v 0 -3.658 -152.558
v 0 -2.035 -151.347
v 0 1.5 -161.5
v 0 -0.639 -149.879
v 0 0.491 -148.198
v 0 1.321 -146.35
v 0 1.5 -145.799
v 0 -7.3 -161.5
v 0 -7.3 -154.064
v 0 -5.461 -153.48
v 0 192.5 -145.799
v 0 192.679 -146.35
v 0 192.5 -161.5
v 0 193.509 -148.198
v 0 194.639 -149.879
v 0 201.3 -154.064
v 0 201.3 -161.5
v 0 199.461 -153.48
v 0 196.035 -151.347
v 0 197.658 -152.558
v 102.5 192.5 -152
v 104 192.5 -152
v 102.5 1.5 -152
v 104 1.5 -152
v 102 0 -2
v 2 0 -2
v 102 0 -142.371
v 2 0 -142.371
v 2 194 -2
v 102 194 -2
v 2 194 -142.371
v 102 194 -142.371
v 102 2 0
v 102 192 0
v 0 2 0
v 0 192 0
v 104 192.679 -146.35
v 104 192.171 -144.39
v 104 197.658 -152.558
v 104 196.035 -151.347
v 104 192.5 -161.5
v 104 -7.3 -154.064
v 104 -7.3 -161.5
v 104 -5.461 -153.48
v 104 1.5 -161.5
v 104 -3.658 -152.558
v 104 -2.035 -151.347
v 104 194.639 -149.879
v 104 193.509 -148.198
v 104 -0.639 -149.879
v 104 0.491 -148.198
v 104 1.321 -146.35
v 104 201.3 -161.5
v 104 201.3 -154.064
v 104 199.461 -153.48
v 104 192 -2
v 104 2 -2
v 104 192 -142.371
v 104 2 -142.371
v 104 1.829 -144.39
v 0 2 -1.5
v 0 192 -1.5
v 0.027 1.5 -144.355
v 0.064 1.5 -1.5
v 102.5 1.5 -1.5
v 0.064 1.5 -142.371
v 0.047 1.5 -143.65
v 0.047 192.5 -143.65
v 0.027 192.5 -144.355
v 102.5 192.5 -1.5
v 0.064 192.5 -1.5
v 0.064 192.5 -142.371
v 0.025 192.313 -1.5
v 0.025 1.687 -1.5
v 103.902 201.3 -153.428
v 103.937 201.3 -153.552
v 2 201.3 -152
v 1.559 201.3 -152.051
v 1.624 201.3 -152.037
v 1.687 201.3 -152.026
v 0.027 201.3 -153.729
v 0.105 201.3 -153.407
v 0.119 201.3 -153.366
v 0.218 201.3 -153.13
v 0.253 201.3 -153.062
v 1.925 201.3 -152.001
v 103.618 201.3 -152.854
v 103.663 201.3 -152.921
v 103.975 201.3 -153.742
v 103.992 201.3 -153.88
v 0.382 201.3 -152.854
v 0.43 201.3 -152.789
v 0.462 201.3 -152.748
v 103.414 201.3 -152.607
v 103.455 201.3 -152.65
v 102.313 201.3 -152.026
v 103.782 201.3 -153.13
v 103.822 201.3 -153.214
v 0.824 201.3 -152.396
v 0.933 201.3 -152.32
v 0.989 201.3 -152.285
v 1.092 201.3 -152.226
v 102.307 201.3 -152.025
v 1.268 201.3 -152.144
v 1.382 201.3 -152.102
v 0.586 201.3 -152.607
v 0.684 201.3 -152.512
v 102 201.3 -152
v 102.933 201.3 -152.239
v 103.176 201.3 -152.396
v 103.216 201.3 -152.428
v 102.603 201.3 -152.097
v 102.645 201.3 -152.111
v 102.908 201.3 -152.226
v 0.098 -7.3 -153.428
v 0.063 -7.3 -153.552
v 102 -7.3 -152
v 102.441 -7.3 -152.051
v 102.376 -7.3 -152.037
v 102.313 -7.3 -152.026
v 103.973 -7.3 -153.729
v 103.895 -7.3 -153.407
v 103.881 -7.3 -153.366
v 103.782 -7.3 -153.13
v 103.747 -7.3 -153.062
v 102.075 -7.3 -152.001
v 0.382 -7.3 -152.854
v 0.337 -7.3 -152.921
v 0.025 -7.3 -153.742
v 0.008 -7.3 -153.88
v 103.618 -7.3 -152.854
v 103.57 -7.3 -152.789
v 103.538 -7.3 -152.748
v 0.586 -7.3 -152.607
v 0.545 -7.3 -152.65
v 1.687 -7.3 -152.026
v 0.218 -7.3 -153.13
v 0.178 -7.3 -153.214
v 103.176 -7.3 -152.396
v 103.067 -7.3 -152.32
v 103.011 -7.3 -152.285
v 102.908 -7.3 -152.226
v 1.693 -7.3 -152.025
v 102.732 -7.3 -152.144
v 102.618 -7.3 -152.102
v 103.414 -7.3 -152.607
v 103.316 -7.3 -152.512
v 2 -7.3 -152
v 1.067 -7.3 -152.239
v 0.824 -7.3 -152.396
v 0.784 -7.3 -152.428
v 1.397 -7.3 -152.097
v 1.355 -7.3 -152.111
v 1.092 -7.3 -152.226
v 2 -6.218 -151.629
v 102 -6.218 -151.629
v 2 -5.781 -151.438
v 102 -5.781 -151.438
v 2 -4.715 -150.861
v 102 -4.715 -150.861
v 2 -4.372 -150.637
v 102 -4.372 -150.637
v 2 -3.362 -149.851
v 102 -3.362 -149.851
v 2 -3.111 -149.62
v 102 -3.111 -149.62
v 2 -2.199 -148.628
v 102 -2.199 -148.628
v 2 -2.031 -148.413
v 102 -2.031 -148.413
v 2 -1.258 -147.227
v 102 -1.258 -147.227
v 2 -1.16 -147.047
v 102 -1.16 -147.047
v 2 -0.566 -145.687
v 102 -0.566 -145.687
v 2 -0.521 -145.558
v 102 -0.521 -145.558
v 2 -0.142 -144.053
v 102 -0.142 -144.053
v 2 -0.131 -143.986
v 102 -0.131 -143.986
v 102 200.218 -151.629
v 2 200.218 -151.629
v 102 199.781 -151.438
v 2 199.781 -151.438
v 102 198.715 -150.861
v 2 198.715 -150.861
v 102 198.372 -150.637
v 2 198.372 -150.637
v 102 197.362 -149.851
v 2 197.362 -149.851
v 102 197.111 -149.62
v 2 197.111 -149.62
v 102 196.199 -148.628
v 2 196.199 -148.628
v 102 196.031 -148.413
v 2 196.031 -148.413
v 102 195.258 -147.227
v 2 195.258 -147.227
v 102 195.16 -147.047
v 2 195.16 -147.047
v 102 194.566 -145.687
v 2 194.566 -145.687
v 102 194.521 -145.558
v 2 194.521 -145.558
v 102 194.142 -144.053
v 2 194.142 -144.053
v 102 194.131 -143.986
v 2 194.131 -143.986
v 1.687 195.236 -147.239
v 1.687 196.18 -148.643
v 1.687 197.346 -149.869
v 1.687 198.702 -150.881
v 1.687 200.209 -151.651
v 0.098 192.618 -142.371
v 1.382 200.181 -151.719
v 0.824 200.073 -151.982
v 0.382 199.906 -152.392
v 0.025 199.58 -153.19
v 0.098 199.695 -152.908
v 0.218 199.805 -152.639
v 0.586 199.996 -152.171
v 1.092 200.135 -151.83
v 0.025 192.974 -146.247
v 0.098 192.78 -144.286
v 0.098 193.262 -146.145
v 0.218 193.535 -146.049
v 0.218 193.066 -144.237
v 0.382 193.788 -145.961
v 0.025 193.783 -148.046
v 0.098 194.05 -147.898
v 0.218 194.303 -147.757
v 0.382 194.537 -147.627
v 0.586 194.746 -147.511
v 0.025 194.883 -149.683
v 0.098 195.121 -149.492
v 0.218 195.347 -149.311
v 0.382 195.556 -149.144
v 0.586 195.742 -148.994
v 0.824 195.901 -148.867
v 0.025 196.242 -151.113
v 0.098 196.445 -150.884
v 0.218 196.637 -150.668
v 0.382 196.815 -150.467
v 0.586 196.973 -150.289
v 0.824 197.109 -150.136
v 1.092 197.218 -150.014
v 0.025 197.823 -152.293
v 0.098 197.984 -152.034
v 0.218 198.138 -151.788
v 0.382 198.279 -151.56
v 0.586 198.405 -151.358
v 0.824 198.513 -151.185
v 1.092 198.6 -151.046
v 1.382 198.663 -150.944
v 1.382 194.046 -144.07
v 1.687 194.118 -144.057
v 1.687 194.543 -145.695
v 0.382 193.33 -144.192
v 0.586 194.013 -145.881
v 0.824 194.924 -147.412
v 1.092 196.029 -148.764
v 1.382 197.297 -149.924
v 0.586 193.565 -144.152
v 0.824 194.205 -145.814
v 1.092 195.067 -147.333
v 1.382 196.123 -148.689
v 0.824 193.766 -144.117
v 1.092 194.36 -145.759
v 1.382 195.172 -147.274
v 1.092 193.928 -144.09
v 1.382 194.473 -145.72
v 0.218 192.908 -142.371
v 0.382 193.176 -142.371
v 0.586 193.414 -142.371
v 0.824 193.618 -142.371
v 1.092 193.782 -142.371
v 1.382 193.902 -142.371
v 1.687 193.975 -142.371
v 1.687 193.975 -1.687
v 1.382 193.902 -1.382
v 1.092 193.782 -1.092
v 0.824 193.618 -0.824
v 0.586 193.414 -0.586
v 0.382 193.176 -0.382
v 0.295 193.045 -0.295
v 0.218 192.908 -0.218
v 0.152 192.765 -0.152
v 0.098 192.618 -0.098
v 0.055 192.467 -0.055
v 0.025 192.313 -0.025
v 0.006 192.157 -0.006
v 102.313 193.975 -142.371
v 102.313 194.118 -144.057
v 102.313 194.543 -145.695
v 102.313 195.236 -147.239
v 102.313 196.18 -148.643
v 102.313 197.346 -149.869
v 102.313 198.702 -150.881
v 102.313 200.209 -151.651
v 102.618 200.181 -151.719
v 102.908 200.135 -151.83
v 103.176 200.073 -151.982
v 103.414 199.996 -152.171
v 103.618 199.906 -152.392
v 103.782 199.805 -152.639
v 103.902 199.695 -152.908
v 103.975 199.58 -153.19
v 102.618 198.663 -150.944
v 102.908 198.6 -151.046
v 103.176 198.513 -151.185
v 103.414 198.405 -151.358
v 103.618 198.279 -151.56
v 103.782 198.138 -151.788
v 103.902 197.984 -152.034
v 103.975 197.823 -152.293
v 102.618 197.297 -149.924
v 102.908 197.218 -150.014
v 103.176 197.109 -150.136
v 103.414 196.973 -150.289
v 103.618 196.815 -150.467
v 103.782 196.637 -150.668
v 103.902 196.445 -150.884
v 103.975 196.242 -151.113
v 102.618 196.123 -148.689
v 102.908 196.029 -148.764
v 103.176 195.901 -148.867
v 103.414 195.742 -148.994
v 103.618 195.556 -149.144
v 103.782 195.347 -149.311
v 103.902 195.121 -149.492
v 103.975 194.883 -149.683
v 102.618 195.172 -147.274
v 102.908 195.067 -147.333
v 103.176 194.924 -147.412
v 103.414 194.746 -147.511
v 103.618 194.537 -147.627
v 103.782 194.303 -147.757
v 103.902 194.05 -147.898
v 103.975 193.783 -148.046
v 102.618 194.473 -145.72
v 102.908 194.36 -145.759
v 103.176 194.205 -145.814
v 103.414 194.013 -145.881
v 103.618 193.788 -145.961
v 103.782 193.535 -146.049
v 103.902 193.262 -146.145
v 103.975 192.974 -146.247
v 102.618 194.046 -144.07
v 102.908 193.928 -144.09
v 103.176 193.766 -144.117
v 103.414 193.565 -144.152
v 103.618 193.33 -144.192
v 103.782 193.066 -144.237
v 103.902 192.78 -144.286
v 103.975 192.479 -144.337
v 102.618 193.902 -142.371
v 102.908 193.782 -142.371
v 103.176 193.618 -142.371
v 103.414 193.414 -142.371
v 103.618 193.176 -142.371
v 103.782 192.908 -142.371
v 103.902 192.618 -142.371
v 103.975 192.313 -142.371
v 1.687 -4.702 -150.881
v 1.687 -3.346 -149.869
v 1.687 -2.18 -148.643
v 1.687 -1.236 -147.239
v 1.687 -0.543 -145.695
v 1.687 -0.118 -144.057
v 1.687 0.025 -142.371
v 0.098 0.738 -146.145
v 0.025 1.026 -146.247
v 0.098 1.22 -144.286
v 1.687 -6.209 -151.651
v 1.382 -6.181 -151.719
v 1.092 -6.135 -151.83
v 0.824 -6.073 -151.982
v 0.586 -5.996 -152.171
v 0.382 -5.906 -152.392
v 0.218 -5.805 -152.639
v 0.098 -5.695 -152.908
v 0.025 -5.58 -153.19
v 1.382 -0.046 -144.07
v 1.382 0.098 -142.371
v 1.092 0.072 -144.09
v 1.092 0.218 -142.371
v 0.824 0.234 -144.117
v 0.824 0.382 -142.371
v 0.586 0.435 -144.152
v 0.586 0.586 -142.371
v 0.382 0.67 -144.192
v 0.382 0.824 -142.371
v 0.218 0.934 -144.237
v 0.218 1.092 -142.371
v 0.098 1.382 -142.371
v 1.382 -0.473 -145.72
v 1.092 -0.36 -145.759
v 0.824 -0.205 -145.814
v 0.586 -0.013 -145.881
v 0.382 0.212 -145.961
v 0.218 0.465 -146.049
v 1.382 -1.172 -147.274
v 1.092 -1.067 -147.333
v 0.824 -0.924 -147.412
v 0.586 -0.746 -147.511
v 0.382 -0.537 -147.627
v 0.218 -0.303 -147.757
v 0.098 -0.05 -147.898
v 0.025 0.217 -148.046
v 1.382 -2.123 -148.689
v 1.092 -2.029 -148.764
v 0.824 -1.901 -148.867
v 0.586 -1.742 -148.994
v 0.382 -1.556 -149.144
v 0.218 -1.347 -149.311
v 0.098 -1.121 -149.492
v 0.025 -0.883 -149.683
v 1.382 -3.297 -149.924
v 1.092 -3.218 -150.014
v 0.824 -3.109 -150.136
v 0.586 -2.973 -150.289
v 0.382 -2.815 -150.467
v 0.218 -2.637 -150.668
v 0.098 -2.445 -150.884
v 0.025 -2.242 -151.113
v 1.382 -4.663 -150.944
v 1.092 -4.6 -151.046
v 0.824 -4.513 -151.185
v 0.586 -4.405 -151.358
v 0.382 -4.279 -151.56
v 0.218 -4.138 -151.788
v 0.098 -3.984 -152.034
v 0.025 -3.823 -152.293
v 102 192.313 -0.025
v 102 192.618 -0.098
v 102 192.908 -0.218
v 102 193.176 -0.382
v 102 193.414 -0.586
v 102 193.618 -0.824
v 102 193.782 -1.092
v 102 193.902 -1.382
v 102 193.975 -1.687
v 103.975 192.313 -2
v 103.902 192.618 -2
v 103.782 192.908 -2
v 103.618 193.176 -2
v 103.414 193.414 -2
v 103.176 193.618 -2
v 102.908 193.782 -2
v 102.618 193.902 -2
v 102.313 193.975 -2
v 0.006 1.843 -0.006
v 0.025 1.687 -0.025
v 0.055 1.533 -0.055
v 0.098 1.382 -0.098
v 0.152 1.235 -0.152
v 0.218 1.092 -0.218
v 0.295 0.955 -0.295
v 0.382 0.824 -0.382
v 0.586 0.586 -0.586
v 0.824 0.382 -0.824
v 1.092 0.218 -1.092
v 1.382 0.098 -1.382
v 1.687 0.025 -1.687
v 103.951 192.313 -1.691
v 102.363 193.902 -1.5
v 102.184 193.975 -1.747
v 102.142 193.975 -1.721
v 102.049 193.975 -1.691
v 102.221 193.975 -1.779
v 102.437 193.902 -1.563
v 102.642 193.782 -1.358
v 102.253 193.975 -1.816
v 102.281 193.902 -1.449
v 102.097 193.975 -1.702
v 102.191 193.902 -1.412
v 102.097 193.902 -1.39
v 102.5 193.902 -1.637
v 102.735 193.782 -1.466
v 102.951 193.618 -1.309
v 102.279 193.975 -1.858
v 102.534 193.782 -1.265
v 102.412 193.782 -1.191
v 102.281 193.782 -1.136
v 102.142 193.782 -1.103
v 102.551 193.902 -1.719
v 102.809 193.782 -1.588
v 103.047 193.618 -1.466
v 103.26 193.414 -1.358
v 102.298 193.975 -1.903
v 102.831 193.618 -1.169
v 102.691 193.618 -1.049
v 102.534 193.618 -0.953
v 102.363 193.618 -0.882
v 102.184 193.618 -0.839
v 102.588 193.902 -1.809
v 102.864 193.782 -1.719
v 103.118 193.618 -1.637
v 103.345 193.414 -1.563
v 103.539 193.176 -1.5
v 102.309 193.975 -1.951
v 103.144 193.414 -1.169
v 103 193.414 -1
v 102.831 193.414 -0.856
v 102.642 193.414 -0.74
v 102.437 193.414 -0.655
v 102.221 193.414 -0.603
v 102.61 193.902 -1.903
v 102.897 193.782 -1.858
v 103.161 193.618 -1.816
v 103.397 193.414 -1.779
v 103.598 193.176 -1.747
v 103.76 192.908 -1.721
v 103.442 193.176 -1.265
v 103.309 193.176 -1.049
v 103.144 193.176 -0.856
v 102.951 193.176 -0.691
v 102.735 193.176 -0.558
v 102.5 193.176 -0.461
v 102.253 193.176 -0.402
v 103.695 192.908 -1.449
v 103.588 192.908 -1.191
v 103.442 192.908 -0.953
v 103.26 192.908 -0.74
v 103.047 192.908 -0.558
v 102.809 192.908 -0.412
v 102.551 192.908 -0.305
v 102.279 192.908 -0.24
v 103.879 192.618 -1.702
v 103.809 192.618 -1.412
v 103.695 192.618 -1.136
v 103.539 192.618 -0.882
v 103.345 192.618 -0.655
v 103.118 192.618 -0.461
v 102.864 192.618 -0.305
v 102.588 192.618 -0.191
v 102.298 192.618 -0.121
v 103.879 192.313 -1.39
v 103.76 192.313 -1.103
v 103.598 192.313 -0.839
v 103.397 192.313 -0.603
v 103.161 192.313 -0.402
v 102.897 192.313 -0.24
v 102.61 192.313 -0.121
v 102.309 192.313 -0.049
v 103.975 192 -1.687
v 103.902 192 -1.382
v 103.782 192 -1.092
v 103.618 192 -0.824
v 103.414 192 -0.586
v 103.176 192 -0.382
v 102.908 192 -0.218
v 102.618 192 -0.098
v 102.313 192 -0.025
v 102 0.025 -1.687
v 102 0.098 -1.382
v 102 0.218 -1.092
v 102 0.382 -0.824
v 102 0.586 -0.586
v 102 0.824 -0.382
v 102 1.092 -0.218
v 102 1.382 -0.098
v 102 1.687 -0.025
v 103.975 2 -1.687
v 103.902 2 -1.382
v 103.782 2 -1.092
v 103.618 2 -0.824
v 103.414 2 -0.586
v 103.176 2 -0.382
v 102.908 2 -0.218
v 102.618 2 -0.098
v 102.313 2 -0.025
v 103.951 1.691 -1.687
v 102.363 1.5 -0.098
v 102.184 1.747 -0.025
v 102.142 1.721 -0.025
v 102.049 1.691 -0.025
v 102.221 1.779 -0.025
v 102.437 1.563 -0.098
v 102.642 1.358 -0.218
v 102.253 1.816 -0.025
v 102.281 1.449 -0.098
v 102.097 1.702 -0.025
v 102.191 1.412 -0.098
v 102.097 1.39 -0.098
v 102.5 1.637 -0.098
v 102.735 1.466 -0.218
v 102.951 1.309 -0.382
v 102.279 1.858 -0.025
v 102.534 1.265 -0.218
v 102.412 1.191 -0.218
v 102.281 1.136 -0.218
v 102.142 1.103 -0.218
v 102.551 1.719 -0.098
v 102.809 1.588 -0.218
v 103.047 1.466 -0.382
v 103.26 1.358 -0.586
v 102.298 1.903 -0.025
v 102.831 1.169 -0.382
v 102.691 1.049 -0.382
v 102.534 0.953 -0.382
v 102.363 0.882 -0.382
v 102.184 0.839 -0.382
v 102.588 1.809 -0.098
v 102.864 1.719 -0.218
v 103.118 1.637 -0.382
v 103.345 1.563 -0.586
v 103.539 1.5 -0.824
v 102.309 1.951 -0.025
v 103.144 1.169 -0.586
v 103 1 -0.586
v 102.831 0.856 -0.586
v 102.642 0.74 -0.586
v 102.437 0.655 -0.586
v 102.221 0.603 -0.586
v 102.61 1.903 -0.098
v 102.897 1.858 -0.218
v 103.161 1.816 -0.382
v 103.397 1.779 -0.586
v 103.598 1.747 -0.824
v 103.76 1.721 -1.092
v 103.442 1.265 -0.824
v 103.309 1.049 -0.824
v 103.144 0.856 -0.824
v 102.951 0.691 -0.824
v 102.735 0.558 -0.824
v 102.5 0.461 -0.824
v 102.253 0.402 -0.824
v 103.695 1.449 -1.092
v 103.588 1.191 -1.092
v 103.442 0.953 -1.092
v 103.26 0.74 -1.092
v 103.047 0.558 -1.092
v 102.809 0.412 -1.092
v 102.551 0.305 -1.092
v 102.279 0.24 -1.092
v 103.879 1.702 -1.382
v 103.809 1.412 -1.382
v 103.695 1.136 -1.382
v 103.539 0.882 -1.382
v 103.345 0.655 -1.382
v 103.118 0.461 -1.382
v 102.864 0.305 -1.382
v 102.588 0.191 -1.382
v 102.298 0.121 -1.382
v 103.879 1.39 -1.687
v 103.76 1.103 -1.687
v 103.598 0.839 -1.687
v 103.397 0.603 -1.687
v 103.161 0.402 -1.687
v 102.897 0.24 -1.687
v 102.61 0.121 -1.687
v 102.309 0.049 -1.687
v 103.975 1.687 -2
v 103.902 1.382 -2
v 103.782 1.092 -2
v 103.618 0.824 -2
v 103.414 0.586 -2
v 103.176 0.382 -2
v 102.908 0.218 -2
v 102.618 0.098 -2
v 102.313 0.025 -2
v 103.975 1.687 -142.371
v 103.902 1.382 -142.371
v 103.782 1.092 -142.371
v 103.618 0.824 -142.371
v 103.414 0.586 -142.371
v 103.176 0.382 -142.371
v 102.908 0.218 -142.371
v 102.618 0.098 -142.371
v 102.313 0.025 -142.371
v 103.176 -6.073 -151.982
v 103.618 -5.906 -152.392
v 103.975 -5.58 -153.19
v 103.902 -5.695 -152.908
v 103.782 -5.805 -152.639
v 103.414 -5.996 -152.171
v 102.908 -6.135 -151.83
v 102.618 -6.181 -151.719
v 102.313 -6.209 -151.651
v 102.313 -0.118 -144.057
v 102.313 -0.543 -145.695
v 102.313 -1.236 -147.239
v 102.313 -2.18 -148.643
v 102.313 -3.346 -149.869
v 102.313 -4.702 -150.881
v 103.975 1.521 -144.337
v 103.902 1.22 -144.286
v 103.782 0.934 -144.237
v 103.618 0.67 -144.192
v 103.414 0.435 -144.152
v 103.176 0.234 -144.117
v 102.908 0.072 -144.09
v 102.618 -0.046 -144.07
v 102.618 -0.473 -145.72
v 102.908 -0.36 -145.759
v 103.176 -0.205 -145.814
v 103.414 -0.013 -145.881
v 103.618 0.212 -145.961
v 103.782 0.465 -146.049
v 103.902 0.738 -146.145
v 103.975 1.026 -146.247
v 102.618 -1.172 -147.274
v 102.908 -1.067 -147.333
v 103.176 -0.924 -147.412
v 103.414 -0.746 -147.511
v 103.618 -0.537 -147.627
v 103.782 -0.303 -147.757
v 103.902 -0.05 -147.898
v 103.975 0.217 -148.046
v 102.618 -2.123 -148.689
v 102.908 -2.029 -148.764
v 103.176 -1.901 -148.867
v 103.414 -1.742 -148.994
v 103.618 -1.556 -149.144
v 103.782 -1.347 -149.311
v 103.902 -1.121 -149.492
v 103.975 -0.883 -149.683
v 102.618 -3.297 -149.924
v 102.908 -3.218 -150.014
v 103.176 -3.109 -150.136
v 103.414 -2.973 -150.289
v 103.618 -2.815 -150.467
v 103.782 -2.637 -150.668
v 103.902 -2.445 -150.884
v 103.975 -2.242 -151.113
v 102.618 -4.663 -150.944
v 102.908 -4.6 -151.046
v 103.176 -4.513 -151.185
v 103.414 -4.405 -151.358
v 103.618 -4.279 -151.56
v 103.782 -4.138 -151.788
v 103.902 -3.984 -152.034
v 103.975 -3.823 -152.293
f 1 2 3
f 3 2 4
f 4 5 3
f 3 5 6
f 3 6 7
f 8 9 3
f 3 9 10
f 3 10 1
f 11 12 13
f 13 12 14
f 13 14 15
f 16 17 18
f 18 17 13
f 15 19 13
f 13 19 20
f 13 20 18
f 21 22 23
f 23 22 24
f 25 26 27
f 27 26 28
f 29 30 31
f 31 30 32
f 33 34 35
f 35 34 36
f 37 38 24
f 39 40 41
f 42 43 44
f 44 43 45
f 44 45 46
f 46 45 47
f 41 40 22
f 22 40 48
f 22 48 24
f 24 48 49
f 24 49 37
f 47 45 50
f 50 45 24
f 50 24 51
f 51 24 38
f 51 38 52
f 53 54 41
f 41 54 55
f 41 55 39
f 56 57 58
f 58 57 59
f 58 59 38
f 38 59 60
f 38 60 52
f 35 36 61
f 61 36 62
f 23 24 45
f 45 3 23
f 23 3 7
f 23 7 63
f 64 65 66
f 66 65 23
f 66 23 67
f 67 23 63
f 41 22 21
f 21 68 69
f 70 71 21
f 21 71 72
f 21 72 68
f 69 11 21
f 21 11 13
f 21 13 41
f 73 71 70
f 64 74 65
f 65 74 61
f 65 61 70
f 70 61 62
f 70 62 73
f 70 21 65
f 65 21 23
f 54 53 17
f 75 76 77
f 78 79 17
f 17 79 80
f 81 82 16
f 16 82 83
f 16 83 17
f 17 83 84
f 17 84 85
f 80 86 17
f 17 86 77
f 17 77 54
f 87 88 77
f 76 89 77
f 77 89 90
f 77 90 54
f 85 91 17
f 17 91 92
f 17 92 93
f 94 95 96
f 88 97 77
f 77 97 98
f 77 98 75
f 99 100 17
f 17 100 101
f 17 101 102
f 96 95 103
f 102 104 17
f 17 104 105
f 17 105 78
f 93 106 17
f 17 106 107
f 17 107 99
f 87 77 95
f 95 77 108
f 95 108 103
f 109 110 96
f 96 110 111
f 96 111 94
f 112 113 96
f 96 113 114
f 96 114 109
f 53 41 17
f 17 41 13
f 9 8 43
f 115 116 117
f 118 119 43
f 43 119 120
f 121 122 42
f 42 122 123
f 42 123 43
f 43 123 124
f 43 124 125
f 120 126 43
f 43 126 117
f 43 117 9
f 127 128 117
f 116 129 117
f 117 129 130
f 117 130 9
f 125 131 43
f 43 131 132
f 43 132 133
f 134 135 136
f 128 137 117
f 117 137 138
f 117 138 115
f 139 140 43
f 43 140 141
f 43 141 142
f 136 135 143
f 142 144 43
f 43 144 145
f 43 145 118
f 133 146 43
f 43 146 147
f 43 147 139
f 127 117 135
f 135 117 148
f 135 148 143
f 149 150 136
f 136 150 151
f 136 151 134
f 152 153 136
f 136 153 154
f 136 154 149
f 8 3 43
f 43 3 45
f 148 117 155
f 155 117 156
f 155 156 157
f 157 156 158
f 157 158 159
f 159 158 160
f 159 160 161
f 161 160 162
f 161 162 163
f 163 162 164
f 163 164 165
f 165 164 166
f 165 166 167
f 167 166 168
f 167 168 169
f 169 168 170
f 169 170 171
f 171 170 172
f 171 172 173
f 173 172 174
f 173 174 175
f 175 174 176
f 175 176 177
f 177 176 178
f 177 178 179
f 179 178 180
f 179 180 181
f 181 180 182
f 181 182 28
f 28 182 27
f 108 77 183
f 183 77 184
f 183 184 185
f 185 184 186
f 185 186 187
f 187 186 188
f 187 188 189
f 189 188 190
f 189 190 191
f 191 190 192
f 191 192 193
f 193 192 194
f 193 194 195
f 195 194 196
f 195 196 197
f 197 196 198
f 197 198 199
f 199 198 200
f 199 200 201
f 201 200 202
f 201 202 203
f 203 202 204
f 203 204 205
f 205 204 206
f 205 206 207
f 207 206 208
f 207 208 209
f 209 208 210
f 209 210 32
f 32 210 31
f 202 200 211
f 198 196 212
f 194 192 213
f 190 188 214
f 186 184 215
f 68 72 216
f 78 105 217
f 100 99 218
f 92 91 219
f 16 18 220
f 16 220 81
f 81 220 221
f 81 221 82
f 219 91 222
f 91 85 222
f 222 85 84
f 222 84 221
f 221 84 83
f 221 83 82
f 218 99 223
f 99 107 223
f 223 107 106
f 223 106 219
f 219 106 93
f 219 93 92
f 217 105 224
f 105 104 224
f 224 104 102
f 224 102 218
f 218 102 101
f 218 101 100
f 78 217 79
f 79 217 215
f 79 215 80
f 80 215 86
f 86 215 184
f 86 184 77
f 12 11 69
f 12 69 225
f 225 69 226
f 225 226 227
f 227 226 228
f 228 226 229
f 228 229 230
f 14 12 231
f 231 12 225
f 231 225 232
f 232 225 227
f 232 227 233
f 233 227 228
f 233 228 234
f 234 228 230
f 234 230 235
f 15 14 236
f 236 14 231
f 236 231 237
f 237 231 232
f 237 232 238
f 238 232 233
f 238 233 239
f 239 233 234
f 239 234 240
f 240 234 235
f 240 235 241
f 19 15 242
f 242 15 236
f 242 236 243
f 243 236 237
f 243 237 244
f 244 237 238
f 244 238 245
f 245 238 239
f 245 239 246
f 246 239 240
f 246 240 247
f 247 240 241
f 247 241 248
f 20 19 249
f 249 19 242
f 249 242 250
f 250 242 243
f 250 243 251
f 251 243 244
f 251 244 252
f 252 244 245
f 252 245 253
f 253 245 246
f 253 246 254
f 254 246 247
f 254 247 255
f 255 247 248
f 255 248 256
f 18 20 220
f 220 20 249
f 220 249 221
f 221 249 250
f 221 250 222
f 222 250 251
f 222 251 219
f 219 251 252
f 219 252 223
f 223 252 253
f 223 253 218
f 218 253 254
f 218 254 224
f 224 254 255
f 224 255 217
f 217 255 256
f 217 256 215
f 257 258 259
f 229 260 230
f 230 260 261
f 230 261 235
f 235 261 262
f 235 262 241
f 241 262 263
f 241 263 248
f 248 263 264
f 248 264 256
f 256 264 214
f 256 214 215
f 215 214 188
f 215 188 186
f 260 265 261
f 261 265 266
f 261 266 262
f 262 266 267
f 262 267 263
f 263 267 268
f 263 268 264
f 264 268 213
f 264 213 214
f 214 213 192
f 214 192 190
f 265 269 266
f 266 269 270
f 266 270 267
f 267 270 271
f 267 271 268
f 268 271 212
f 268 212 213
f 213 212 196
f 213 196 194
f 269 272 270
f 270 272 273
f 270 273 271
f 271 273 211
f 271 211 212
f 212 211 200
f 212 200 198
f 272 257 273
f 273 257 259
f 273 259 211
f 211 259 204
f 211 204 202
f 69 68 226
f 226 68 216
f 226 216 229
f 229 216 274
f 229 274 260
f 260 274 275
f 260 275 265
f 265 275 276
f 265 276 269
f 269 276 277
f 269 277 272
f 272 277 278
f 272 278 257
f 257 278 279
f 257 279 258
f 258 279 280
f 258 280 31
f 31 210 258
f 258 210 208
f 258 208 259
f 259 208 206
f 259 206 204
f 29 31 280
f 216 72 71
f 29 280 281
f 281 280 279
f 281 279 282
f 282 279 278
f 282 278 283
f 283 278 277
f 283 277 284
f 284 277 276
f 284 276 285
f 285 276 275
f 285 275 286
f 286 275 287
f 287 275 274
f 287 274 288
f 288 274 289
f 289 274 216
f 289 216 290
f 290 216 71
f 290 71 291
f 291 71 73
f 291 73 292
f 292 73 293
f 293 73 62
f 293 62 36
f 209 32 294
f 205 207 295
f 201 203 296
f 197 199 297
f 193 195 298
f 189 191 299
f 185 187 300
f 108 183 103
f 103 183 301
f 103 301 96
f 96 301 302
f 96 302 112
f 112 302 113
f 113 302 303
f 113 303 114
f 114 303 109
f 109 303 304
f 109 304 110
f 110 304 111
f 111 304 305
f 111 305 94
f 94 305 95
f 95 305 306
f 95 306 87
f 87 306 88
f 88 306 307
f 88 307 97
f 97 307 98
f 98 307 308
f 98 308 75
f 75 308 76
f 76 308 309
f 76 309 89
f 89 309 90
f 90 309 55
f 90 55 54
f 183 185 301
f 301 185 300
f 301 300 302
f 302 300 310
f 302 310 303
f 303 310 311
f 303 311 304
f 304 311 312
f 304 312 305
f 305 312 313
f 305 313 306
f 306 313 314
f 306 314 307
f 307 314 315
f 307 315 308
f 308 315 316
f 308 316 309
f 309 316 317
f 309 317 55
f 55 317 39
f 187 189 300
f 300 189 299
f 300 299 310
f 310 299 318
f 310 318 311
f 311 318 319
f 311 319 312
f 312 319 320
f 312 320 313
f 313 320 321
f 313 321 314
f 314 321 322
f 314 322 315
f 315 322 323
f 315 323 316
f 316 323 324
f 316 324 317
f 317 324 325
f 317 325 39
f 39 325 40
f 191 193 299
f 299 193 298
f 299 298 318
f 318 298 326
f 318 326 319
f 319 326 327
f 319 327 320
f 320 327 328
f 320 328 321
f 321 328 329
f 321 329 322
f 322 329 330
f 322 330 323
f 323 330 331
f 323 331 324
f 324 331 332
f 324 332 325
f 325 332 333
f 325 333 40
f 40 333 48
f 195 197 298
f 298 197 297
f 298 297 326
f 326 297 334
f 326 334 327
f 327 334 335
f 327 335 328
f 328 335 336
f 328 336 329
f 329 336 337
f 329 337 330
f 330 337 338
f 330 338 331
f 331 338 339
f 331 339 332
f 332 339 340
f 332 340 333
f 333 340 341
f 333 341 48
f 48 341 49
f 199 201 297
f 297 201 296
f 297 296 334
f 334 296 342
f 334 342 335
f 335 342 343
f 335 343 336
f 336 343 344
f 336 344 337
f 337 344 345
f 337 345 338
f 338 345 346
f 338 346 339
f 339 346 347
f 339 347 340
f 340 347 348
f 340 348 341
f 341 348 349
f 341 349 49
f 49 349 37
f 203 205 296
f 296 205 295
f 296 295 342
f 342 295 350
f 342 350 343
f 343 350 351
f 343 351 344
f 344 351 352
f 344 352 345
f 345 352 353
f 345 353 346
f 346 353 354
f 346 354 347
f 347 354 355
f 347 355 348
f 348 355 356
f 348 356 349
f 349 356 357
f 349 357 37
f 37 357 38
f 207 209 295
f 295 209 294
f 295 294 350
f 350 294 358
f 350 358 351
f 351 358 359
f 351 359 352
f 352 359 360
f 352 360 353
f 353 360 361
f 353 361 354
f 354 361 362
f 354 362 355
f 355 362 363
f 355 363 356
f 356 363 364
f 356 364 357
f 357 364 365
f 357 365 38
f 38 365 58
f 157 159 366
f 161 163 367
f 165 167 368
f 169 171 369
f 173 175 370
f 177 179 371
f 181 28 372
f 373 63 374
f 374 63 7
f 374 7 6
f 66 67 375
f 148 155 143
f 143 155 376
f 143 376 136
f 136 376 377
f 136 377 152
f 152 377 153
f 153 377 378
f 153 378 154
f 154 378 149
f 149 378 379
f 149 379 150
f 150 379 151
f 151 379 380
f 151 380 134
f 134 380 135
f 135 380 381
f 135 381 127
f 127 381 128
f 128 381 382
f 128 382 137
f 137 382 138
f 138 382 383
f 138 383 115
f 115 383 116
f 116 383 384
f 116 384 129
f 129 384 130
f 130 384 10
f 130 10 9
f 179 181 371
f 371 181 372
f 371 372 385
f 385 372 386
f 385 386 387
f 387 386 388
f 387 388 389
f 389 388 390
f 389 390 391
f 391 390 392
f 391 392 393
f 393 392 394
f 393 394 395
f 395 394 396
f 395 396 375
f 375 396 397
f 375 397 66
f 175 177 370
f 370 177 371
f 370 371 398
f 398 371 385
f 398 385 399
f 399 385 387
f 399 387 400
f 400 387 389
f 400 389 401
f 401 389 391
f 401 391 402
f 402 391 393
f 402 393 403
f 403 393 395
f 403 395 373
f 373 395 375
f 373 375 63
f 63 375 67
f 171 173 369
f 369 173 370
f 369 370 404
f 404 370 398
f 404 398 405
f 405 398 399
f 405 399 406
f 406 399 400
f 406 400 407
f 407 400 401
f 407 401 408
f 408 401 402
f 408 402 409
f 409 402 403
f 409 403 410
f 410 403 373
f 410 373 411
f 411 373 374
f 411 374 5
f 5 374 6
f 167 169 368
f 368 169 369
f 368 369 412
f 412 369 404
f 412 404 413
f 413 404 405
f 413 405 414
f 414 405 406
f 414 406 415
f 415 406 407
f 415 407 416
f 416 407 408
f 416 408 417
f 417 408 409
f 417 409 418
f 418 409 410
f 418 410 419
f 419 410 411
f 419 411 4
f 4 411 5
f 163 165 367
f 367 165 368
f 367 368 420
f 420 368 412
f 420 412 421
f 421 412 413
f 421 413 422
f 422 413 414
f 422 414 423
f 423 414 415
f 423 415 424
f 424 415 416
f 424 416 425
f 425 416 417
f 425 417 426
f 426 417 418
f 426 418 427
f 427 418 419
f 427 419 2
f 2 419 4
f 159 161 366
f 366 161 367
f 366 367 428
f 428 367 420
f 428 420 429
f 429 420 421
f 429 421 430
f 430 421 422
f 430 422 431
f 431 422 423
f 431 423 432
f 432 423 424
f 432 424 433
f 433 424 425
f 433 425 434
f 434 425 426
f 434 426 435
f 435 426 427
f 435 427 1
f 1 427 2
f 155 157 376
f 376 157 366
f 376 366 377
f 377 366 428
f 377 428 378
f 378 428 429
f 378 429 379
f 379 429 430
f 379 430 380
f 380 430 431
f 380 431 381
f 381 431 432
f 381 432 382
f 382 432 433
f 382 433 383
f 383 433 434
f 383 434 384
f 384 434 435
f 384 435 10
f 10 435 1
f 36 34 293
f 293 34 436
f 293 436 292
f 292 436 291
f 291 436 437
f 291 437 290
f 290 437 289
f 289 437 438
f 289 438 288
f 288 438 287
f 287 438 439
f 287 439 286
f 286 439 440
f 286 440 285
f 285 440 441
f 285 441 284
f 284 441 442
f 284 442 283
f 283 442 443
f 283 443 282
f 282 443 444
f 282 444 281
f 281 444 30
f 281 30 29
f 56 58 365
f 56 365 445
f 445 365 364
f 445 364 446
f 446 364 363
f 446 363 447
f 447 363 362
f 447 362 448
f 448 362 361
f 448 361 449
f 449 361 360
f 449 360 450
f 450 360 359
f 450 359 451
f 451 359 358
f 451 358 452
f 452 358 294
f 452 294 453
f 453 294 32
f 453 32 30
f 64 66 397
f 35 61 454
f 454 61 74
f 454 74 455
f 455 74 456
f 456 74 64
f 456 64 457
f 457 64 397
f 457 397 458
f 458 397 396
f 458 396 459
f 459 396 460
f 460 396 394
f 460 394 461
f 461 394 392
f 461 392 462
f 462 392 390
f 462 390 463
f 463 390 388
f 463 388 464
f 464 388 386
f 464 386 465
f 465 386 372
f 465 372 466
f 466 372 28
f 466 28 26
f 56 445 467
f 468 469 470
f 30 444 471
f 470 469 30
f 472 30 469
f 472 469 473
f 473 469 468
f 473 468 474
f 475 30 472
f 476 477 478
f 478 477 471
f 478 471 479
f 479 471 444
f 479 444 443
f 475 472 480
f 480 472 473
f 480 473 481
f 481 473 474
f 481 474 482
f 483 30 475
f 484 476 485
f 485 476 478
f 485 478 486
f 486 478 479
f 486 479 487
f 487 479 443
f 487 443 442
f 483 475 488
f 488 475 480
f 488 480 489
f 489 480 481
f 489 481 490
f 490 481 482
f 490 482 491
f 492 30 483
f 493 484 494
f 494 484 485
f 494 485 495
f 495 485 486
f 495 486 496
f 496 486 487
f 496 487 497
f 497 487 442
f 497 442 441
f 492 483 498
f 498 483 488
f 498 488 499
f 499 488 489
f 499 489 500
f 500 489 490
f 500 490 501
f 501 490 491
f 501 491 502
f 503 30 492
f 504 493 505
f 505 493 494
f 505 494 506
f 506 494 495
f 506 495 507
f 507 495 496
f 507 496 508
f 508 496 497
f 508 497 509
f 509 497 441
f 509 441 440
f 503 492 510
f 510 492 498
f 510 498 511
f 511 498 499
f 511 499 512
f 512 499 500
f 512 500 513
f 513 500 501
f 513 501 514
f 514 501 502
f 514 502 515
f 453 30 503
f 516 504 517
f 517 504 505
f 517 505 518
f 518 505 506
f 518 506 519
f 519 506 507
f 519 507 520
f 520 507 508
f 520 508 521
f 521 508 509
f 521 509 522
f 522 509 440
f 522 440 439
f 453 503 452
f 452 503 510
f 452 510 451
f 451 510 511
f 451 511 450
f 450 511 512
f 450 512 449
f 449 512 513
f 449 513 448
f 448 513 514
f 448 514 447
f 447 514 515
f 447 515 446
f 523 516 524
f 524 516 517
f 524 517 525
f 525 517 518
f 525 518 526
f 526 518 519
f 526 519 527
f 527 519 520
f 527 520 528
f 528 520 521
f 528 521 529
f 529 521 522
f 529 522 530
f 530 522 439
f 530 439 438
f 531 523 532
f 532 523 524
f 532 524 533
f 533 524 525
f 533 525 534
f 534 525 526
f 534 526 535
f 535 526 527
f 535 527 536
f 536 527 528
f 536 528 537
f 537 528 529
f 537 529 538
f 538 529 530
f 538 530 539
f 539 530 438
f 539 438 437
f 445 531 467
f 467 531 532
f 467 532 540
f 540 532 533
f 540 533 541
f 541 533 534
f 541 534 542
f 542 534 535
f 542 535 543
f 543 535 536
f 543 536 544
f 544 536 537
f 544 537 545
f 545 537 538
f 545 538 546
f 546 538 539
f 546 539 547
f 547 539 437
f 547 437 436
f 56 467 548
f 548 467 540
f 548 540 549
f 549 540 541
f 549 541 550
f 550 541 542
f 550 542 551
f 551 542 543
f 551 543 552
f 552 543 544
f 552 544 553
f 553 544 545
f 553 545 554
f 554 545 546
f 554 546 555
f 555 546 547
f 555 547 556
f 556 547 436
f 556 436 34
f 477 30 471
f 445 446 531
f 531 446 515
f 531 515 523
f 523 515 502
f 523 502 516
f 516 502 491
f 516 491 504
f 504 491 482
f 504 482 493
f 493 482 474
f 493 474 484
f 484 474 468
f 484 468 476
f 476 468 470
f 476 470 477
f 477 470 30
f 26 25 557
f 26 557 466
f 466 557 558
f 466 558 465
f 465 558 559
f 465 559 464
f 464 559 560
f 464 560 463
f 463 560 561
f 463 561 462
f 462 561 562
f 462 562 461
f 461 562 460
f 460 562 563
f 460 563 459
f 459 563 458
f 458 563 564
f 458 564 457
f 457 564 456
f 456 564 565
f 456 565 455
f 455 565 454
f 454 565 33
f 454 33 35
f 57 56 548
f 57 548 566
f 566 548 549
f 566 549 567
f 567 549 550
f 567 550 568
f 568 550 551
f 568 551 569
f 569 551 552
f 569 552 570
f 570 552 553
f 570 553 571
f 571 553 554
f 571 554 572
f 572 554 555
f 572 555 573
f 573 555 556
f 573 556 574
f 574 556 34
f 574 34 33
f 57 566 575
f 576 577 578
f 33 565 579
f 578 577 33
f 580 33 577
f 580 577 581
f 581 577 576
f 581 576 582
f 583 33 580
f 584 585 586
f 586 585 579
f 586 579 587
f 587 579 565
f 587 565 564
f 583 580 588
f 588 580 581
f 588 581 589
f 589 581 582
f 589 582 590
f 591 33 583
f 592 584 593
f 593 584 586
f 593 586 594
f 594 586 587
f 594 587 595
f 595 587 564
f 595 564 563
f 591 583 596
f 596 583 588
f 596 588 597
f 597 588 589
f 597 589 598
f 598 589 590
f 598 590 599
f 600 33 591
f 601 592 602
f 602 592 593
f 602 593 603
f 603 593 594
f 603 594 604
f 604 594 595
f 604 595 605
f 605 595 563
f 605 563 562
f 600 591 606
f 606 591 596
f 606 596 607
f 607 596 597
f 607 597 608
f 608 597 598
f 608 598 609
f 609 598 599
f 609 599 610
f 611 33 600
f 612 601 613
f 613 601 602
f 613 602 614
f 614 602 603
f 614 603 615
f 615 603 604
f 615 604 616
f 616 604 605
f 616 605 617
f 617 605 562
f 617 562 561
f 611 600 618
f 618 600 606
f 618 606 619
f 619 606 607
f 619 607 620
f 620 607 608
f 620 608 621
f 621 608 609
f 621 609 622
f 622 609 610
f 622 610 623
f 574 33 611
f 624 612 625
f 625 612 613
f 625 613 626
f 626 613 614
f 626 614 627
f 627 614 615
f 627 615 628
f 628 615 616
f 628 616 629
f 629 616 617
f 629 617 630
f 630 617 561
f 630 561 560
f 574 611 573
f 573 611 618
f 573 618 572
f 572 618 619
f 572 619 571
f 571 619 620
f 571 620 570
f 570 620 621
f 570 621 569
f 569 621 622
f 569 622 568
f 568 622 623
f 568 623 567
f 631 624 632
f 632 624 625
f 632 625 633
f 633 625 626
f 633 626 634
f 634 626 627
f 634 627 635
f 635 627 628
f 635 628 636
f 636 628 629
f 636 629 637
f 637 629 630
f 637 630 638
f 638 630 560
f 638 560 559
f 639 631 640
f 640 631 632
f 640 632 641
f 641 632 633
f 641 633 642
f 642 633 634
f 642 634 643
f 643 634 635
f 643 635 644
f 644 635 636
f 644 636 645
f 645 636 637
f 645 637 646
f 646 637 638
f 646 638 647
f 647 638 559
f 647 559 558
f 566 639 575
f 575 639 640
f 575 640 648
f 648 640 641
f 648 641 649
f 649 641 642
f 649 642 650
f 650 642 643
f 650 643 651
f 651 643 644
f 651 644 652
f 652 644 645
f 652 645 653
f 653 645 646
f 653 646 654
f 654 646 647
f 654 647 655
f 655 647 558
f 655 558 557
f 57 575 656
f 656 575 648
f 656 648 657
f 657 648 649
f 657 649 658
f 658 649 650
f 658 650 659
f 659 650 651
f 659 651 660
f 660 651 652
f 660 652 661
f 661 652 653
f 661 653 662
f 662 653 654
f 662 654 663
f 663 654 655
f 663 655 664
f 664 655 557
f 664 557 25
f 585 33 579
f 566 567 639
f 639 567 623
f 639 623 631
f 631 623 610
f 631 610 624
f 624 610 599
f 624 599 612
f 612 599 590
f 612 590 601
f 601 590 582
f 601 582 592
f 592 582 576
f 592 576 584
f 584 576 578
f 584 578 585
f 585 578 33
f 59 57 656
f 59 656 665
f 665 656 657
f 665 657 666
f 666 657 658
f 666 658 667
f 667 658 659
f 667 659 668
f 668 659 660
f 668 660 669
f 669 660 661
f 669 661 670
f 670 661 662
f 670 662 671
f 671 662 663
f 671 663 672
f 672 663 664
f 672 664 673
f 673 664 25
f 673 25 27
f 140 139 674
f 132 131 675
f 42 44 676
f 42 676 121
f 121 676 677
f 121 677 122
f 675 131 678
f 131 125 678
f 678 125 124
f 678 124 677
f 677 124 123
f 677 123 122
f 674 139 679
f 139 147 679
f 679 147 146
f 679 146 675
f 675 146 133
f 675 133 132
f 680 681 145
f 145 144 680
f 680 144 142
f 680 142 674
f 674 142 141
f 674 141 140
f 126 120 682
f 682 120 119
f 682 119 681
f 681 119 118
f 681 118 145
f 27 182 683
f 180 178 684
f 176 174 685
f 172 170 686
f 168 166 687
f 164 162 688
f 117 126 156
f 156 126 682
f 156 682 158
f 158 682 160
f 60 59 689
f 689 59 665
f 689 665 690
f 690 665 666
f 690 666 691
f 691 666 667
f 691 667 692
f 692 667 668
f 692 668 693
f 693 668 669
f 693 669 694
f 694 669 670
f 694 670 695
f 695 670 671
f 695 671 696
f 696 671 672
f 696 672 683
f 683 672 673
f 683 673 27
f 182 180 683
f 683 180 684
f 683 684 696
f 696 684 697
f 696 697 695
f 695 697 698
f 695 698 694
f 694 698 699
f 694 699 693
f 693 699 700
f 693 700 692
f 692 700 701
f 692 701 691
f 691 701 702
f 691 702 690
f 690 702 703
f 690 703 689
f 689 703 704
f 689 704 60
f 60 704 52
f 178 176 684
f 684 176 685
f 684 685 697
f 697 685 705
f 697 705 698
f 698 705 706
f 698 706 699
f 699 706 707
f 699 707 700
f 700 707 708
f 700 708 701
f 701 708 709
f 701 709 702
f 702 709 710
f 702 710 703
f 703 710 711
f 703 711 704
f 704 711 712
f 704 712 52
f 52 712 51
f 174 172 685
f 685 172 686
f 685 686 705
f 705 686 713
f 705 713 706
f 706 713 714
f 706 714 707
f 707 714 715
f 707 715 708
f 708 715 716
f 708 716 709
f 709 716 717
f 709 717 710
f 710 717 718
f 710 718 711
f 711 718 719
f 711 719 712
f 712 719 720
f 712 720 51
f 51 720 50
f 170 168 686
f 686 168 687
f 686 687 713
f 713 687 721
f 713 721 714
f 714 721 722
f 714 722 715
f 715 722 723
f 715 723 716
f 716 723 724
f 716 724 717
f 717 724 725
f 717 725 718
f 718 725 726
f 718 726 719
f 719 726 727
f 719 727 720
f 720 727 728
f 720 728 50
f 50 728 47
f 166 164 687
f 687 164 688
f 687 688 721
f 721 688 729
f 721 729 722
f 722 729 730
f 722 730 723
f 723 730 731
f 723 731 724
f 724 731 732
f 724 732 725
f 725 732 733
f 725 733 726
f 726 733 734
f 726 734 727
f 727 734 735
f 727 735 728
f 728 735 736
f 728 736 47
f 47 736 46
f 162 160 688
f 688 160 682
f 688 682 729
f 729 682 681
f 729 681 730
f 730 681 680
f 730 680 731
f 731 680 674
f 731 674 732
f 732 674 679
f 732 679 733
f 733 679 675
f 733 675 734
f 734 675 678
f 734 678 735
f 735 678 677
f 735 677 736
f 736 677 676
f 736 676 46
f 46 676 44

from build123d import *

# Parameters (mm, degrees)
SKETCH1_W           = 194
SKETCH1_H           = 152
BOSS_EXTRUDE1_DEPTH = 104
SHELL1_T            = -1.5
CUT_EXTRUDE1_DEPTH  = 2
SKETCH4_W           = 104
SKETCH4_H           = 8.8
BOSS_EXTRUDE2_DEPTH = 9.5
FILLET1_R           = 10
FILLET2_R           = 2


with BuildPart() as part:
    # Sketch1 → Boss-Extrude1 (new body)
    with BuildSketch(Plane.YZ):
        with Locations((97, -76)):
            Rectangle(SKETCH1_W, SKETCH1_H)
    extrude(amount=BOSS_EXTRUDE1_DEPTH)

    # Shell1
    shell1_openings = [part.faces().sort_by_distance(p)[0] for p in [
        (52, 97, -152),
    ]]
    offset(amount=SHELL1_T, openings=shell1_openings, kind=Kind.INTERSECTION)

    # Sketch2 → Cut-Extrude1 (cut)
    with BuildSketch(Plane(origin=(0, 0, 0), x_dir=(0, -1, 0), z_dir=(-1, 0, 0))):
        Polygon((-192.5, -1.5), (-192.5, -150.5), (-192.5, -152), (-1.5, -152), (-1.5, -150.5), (-1.5, -1.5), align=None)
    extrude(amount=-CUT_EXTRUDE1_DEPTH, mode=Mode.SUBTRACT)

    # Sketch4 → Boss-Extrude2 (add)
    with BuildSketch(Plane(origin=(0, 0, -152), x_dir=(1, 0, 0), z_dir=(0, 0, -1))):
        with Locations((52, 2.9)):
            Rectangle(SKETCH4_W, SKETCH4_H)
        with Locations((52, -196.9)):
            Rectangle(SKETCH4_W, SKETCH4_H)
    extrude(amount=BOSS_EXTRUDE2_DEPTH)

    # Fillet1
    # the kernel refuses this fillet: 10 mm, written as the material it adds along each edge
    with BuildSketch(Plane(origin=(0, 0, -152), x_dir=(0, -1, 0), z_dir=(1, 0, 0))) as fillet1_piece_1:
        with BuildLine():
            CenterArc((10, -9.628603222), FILLET1_R, 105.664266851, 74.335733149)
            Line((0, -9.628603222), (-0.2, -9.628603222))
            Line((-0.2, -9.628603222), (-0.2, 0))
            Line((-0.2, 0), (0, 0.2))
            ThreePointArc((0, 0.2), (3.65, 0.2), (7.246, 0.192572064))
            Line((7.246, 0.192572064), (7.3, 0))
        make_face()
    extrude(amount=104)
    with BuildSketch(Plane(origin=(0, 194, -152), x_dir=(0, 1, 0), z_dir=(1, 0, 0))) as fillet1_piece_2:
        with BuildLine():
            CenterArc((10, 9.628603222), FILLET1_R, 180, 74.335733149)
            Line((0, 9.628603222), (-0.2, 9.628603222))
            Line((-0.2, 9.628603222), (-0.2, 0))
            Line((-0.2, 0), (0, -0.2))
            ThreePointArc((0, -0.2), (3.65, -0.2), (7.246, -0.192572064))
            Line((7.246, -0.192572064), (7.3, 0))
        make_face()
    extrude(amount=104)

    # Fillet2
    # the kernel refuses this fillet: 2 mm, written as the material it takes off along each edge
    with BuildSketch(Plane(origin=(102, 2, -2), x_dir=(1, 0, 0), z_dir=(0, -1, 0))) as fillet2_piece_1_section:
        Polygon((0, 0), (FILLET2_R, 0), (FILLET2_R, FILLET2_R), (0, FILLET2_R), align=None)
    fillet2_piece_1 = extrude(amount=FILLET2_R, mode=Mode.PRIVATE)
    fillet2_piece_1 = fillet2_piece_1 - Plane(origin=(102, 2, -2), x_dir=(-0.7071067811865475, 0, -0.7071067811865475), z_dir=(0, -1, 0)) * Sphere(FILLET2_R, mode=Mode.PRIVATE)
    add(fillet2_piece_1, mode=Mode.SUBTRACT)
    with BuildSketch(Plane(origin=(102, 192, -2), x_dir=(1, 0, 0), z_dir=(0, 1, 0))) as fillet2_piece_2_section:
        Polygon((0, 0), (FILLET2_R, 0), (FILLET2_R, -FILLET2_R), (0, -FILLET2_R), align=None)
    fillet2_piece_2 = extrude(amount=FILLET2_R, mode=Mode.PRIVATE)
    fillet2_piece_2 = fillet2_piece_2 - Plane(origin=(102, 192, -2), x_dir=(-0.7071067811865475, 0, -0.7071067811865475), z_dir=(0, 1, 0)) * Sphere(FILLET2_R, mode=Mode.PRIVATE)
    add(fillet2_piece_2, mode=Mode.SUBTRACT)
    with BuildSketch(Plane(origin=(104, 2, 0), x_dir=(0, 0, -1), z_dir=(0, 1, 0))) as fillet2_piece_3:
        with BuildLine():
            CenterArc((FILLET2_R, FILLET2_R), FILLET2_R, 180, 90)
            Line((0, FILLET2_R), (0, 0))
            Line((0, 0), (FILLET2_R, 0))
        make_face()
    extrude(amount=190, mode=Mode.SUBTRACT)
    with BuildSketch(Plane(origin=(104, 0, -142.371396778), x_dir=(0, 1, 0), z_dir=(0, 0, 1))) as fillet2_piece_4:
        with BuildLine():
            CenterArc((FILLET2_R, FILLET2_R), FILLET2_R, 180, 90)
            Line((0, FILLET2_R), (0, 0))
            Line((0, 0), (FILLET2_R, 0))
        make_face()
    extrude(amount=140.371396778, mode=Mode.SUBTRACT)
    with BuildSketch(Plane(origin=(0, 0, -142.371396778), x_dir=(0, 1, 0), z_dir=(0, 0, 1))) as fillet2_piece_5:
        with BuildLine():
            CenterArc((FILLET2_R, -FILLET2_R), FILLET2_R, 90, 90)
            Line((0, -FILLET2_R), (0, 0))
            Line((0, 0), (FILLET2_R, 0))
        make_face()
    extrude(amount=147.371396778, mode=Mode.SUBTRACT)
    with BuildSketch(Plane(origin=(-5, 0, 0), x_dir=(0, 1, 0), z_dir=(1, 0, 0)), Plane(origin=(-5, 194, 0), x_dir=(0, 0, -1), z_dir=(1, 0, 0))) as fillet2_piece_6:
        with BuildLine():
            CenterArc((FILLET2_R, -FILLET2_R), FILLET2_R, 90, 90)
            Line((0, -FILLET2_R), (0, 0))
            Line((0, 0), (FILLET2_R, 0))
        make_face()
    extrude(amount=107, mode=Mode.SUBTRACT)
    with BuildSketch(Plane(origin=(0, 194, 5), x_dir=(1, 0, 0), z_dir=(0, 0, -1))) as fillet2_piece_7:
        with BuildLine():
            CenterArc((FILLET2_R, FILLET2_R), FILLET2_R, 180, 90)
            Line((0, FILLET2_R), (0, 0))
            Line((0, 0), (FILLET2_R, 0))
        make_face()
    extrude(amount=147.371396778, mode=Mode.SUBTRACT)
    with BuildSketch(Plane(origin=(104, 194, -2), x_dir=(-1, 0, 0), z_dir=(0, 0, -1))) as fillet2_piece_8:
        with BuildLine():
            CenterArc((FILLET2_R, -FILLET2_R), FILLET2_R, 90, 90)
            Line((0, -FILLET2_R), (0, 0))
            Line((0, 0), (FILLET2_R, 0))
        make_face()
    extrude(amount=140.371396778, mode=Mode.SUBTRACT)
    with BuildSketch(Plane(origin=(0, -10, -142.371396778), x_dir=(0, -0.2248060419259851, -0.9744035321742077), z_dir=(0, -0.9744035321742077, 0.2248060419259851))) as fillet2_piece_9:
        with BuildLine():
            CenterArc((10 + FILLET2_R, FILLET2_R), FILLET2_R, 180, 90)
            Line((10, FILLET2_R), (10, 0))
            Line((10, 0), (10 + FILLET2_R, 0))
        make_face()
    revolve(axis=Axis((0, -10, -142.371396778), (1, 0, 0)), revolution_arc=102.991472997, mode=Mode.SUBTRACT)
    with BuildSketch(Plane(origin=(104, -10, -142.371396778), x_dir=(0, -0.2248060419259851, -0.9744035321742077), z_dir=(0, -0.9744035321742077, 0.2248060419259851))) as fillet2_piece_10:
        with BuildLine():
            CenterArc((10 + FILLET2_R, -FILLET2_R), FILLET2_R, 90, 90)
            Line((10, -FILLET2_R), (10, 0))
            Line((10, 0), (10 + FILLET2_R, 0))
        make_face()
    revolve(axis=Axis((104, -10, -142.371396778), (1, 0, 0)), revolution_arc=102.991472997, mode=Mode.SUBTRACT)
    with BuildSketch(Plane(origin=(0, 204, -142.371396778), x_dir=(0, -1, 0), z_dir=(0, 0, 1))) as fillet2_piece_11:
        with BuildLine():
            CenterArc((10 + FILLET2_R, FILLET2_R), FILLET2_R, 180, 90)
            Line((10 + FILLET2_R, 0), (10, 0))
            Line((10, 0), (10, FILLET2_R))
        make_face()
    revolve(axis=Axis((0, 204, -142.371396778), (1, 0, 0)), revolution_arc=102.991472997, mode=Mode.SUBTRACT)
    with BuildSketch(Plane(origin=(104, 204, -142.371396778), x_dir=(0, -1, 0), z_dir=(0, 0, 1))) as fillet2_piece_12:
        with BuildLine():
            CenterArc((10 + FILLET2_R, -FILLET2_R), FILLET2_R, 90, 90)
            Line((10 + FILLET2_R, 0), (10, 0))
            Line((10, 0), (10, -FILLET2_R))
        make_face()
    revolve(axis=Axis((104, 204, -142.371396778), (1, 0, 0)), revolution_arc=102.991472997, mode=Mode.SUBTRACT)


solid = part.part
